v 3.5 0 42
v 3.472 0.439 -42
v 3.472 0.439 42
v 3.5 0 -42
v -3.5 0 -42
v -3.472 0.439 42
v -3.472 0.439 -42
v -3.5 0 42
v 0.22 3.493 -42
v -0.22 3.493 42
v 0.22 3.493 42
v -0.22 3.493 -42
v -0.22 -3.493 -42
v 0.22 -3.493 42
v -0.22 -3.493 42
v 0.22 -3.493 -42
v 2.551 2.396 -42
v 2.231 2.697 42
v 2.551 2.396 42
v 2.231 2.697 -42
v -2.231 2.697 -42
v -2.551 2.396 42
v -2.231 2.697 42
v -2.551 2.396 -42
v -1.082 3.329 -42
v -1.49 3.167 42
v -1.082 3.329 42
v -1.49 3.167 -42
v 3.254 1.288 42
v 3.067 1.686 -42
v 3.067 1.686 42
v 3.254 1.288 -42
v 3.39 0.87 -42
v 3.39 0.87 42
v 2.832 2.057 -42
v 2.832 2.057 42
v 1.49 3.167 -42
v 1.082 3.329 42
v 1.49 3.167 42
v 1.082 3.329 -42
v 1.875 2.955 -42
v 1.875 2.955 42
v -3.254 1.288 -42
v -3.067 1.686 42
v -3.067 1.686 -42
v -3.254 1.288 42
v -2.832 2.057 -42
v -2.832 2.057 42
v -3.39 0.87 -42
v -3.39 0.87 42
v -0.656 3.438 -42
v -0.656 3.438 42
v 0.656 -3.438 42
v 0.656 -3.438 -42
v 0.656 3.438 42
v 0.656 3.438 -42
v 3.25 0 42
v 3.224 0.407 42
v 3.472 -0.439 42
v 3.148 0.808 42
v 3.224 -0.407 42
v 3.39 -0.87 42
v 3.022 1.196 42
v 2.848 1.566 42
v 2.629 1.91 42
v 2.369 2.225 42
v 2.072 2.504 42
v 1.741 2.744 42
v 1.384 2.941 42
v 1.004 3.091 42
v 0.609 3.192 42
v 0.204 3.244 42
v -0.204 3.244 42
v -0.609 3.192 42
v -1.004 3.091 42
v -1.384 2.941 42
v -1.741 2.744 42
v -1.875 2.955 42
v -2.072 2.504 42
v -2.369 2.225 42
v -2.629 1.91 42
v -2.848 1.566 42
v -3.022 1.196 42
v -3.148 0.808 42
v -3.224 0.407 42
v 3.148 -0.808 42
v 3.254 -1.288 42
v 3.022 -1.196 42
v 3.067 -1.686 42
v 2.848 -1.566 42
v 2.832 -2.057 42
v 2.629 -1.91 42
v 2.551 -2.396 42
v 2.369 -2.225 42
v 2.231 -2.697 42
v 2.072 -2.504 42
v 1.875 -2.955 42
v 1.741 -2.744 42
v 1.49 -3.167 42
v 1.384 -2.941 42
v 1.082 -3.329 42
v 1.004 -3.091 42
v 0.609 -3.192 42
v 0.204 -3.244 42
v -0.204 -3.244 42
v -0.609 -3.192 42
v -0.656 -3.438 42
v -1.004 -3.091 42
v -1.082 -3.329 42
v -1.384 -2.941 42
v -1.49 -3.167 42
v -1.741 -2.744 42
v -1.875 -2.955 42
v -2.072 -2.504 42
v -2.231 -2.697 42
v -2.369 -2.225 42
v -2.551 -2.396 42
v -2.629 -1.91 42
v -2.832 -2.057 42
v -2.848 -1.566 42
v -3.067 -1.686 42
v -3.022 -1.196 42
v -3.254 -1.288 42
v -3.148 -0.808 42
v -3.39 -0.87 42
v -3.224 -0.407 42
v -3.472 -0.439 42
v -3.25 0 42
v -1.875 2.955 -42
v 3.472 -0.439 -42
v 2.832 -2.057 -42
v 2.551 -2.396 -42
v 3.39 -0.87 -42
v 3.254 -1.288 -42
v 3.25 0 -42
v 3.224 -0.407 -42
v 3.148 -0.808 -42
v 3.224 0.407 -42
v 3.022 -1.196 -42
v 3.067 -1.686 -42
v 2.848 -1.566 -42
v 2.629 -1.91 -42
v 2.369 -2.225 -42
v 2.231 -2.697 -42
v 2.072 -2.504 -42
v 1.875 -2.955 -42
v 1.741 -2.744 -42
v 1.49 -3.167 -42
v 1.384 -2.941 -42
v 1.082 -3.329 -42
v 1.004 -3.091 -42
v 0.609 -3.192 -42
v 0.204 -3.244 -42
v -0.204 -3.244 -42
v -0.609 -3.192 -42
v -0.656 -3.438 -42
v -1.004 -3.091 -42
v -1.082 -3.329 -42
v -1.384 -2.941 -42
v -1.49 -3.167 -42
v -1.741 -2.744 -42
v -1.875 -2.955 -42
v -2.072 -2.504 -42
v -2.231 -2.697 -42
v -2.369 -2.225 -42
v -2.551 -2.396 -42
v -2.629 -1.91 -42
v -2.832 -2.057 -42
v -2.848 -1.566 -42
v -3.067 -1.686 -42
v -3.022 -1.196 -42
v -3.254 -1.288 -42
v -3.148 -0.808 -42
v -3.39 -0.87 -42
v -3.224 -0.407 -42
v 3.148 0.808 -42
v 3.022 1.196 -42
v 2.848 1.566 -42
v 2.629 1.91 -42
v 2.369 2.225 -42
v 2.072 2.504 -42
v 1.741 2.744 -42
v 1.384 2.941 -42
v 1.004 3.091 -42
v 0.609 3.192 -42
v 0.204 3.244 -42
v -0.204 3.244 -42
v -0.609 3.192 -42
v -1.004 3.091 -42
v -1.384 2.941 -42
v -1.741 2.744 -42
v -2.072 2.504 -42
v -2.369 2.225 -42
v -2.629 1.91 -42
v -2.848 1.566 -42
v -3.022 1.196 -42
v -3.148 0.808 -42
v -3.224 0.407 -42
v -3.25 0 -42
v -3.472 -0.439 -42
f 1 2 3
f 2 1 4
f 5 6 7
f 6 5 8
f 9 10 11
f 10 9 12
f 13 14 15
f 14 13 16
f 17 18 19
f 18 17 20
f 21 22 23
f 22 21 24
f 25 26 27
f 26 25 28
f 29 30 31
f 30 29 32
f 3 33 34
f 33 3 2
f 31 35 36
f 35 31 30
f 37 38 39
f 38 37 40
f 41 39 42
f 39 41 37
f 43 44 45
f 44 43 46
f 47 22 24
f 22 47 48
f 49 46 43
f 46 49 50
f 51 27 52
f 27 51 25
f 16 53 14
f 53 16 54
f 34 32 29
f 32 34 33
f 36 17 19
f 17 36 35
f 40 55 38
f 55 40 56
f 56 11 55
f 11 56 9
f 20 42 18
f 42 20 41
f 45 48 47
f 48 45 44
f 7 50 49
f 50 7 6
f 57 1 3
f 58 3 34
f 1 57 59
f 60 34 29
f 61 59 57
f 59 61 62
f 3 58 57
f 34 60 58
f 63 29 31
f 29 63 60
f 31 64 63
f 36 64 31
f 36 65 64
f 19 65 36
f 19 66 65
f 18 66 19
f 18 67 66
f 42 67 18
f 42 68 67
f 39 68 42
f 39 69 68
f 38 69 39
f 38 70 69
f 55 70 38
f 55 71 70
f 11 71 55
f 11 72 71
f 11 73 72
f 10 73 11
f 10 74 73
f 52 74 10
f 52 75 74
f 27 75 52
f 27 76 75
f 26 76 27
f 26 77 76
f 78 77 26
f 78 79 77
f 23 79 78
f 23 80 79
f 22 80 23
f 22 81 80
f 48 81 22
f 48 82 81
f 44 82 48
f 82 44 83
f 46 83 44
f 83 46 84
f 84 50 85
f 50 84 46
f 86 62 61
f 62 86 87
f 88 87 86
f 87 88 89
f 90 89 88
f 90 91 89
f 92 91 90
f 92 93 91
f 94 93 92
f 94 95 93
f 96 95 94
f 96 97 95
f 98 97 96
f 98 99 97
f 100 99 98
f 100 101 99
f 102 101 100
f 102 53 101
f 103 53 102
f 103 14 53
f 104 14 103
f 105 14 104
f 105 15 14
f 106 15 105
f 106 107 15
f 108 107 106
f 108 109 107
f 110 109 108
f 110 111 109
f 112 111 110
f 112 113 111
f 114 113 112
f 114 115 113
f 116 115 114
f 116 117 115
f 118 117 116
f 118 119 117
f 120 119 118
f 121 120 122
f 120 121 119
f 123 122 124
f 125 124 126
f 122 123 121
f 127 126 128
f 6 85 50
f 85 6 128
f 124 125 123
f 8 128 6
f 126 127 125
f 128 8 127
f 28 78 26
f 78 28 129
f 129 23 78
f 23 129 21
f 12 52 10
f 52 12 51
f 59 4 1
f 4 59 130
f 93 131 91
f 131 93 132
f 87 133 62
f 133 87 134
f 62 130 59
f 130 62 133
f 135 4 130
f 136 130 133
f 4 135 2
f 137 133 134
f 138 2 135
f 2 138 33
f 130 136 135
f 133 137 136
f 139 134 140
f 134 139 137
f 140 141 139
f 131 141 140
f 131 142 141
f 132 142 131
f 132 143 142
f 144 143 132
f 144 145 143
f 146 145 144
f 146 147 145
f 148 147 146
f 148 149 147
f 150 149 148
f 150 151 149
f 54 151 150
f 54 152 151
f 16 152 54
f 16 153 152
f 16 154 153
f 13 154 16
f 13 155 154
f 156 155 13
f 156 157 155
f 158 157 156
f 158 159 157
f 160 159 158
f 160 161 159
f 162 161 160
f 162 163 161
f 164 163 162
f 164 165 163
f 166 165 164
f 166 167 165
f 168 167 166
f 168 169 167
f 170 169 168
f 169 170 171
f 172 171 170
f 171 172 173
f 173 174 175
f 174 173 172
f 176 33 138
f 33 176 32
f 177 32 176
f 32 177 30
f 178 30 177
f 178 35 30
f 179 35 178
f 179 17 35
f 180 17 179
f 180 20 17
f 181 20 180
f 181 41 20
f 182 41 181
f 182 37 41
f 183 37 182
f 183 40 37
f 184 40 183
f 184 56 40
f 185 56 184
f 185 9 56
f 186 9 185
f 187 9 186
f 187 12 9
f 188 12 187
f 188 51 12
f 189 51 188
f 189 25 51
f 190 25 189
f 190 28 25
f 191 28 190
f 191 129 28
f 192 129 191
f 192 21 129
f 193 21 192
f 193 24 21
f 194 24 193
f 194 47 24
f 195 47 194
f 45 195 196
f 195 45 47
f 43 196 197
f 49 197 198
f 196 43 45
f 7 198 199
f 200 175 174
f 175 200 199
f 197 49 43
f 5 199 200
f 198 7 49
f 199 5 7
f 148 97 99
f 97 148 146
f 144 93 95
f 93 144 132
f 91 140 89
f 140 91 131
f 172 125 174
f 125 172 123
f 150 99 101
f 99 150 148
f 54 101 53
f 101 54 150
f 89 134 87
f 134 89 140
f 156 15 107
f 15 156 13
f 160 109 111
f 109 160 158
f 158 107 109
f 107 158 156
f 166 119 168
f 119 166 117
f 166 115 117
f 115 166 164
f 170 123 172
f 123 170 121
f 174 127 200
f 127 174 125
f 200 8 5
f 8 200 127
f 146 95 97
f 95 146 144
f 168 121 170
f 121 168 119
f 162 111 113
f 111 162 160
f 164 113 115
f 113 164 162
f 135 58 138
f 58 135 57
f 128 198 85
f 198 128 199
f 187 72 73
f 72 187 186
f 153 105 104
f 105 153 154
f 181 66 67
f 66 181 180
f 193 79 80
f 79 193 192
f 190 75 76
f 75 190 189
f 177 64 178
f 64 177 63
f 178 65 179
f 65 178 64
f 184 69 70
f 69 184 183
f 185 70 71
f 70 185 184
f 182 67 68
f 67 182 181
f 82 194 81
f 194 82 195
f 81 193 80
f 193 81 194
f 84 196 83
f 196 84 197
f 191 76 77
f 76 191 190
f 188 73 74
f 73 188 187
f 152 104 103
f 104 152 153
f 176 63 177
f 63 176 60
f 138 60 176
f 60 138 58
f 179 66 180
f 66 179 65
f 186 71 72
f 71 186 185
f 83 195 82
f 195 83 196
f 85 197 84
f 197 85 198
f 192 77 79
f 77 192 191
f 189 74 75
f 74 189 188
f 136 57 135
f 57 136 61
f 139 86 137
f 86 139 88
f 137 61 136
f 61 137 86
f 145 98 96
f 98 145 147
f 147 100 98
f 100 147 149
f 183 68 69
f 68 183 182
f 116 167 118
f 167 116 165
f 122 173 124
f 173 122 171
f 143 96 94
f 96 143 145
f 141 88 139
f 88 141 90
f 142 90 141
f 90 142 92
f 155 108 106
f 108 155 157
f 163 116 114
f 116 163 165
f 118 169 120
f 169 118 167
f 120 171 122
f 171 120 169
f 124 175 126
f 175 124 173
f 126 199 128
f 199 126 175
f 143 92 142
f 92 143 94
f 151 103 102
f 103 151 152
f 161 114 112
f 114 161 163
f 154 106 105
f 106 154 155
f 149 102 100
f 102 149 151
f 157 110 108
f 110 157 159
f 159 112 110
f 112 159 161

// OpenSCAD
$fn = 50;


difference() {
	union() {
		translate(v = [0, 0, -42.0000000000]) {
			cylinder(h = 84, r = 3.5000000000);
		}
	}
	union() {
		translate(v = [0, 0, -100.0000000000]) {
			cylinder(h = 200, r = 3.2500000000);
		}
	}
}
